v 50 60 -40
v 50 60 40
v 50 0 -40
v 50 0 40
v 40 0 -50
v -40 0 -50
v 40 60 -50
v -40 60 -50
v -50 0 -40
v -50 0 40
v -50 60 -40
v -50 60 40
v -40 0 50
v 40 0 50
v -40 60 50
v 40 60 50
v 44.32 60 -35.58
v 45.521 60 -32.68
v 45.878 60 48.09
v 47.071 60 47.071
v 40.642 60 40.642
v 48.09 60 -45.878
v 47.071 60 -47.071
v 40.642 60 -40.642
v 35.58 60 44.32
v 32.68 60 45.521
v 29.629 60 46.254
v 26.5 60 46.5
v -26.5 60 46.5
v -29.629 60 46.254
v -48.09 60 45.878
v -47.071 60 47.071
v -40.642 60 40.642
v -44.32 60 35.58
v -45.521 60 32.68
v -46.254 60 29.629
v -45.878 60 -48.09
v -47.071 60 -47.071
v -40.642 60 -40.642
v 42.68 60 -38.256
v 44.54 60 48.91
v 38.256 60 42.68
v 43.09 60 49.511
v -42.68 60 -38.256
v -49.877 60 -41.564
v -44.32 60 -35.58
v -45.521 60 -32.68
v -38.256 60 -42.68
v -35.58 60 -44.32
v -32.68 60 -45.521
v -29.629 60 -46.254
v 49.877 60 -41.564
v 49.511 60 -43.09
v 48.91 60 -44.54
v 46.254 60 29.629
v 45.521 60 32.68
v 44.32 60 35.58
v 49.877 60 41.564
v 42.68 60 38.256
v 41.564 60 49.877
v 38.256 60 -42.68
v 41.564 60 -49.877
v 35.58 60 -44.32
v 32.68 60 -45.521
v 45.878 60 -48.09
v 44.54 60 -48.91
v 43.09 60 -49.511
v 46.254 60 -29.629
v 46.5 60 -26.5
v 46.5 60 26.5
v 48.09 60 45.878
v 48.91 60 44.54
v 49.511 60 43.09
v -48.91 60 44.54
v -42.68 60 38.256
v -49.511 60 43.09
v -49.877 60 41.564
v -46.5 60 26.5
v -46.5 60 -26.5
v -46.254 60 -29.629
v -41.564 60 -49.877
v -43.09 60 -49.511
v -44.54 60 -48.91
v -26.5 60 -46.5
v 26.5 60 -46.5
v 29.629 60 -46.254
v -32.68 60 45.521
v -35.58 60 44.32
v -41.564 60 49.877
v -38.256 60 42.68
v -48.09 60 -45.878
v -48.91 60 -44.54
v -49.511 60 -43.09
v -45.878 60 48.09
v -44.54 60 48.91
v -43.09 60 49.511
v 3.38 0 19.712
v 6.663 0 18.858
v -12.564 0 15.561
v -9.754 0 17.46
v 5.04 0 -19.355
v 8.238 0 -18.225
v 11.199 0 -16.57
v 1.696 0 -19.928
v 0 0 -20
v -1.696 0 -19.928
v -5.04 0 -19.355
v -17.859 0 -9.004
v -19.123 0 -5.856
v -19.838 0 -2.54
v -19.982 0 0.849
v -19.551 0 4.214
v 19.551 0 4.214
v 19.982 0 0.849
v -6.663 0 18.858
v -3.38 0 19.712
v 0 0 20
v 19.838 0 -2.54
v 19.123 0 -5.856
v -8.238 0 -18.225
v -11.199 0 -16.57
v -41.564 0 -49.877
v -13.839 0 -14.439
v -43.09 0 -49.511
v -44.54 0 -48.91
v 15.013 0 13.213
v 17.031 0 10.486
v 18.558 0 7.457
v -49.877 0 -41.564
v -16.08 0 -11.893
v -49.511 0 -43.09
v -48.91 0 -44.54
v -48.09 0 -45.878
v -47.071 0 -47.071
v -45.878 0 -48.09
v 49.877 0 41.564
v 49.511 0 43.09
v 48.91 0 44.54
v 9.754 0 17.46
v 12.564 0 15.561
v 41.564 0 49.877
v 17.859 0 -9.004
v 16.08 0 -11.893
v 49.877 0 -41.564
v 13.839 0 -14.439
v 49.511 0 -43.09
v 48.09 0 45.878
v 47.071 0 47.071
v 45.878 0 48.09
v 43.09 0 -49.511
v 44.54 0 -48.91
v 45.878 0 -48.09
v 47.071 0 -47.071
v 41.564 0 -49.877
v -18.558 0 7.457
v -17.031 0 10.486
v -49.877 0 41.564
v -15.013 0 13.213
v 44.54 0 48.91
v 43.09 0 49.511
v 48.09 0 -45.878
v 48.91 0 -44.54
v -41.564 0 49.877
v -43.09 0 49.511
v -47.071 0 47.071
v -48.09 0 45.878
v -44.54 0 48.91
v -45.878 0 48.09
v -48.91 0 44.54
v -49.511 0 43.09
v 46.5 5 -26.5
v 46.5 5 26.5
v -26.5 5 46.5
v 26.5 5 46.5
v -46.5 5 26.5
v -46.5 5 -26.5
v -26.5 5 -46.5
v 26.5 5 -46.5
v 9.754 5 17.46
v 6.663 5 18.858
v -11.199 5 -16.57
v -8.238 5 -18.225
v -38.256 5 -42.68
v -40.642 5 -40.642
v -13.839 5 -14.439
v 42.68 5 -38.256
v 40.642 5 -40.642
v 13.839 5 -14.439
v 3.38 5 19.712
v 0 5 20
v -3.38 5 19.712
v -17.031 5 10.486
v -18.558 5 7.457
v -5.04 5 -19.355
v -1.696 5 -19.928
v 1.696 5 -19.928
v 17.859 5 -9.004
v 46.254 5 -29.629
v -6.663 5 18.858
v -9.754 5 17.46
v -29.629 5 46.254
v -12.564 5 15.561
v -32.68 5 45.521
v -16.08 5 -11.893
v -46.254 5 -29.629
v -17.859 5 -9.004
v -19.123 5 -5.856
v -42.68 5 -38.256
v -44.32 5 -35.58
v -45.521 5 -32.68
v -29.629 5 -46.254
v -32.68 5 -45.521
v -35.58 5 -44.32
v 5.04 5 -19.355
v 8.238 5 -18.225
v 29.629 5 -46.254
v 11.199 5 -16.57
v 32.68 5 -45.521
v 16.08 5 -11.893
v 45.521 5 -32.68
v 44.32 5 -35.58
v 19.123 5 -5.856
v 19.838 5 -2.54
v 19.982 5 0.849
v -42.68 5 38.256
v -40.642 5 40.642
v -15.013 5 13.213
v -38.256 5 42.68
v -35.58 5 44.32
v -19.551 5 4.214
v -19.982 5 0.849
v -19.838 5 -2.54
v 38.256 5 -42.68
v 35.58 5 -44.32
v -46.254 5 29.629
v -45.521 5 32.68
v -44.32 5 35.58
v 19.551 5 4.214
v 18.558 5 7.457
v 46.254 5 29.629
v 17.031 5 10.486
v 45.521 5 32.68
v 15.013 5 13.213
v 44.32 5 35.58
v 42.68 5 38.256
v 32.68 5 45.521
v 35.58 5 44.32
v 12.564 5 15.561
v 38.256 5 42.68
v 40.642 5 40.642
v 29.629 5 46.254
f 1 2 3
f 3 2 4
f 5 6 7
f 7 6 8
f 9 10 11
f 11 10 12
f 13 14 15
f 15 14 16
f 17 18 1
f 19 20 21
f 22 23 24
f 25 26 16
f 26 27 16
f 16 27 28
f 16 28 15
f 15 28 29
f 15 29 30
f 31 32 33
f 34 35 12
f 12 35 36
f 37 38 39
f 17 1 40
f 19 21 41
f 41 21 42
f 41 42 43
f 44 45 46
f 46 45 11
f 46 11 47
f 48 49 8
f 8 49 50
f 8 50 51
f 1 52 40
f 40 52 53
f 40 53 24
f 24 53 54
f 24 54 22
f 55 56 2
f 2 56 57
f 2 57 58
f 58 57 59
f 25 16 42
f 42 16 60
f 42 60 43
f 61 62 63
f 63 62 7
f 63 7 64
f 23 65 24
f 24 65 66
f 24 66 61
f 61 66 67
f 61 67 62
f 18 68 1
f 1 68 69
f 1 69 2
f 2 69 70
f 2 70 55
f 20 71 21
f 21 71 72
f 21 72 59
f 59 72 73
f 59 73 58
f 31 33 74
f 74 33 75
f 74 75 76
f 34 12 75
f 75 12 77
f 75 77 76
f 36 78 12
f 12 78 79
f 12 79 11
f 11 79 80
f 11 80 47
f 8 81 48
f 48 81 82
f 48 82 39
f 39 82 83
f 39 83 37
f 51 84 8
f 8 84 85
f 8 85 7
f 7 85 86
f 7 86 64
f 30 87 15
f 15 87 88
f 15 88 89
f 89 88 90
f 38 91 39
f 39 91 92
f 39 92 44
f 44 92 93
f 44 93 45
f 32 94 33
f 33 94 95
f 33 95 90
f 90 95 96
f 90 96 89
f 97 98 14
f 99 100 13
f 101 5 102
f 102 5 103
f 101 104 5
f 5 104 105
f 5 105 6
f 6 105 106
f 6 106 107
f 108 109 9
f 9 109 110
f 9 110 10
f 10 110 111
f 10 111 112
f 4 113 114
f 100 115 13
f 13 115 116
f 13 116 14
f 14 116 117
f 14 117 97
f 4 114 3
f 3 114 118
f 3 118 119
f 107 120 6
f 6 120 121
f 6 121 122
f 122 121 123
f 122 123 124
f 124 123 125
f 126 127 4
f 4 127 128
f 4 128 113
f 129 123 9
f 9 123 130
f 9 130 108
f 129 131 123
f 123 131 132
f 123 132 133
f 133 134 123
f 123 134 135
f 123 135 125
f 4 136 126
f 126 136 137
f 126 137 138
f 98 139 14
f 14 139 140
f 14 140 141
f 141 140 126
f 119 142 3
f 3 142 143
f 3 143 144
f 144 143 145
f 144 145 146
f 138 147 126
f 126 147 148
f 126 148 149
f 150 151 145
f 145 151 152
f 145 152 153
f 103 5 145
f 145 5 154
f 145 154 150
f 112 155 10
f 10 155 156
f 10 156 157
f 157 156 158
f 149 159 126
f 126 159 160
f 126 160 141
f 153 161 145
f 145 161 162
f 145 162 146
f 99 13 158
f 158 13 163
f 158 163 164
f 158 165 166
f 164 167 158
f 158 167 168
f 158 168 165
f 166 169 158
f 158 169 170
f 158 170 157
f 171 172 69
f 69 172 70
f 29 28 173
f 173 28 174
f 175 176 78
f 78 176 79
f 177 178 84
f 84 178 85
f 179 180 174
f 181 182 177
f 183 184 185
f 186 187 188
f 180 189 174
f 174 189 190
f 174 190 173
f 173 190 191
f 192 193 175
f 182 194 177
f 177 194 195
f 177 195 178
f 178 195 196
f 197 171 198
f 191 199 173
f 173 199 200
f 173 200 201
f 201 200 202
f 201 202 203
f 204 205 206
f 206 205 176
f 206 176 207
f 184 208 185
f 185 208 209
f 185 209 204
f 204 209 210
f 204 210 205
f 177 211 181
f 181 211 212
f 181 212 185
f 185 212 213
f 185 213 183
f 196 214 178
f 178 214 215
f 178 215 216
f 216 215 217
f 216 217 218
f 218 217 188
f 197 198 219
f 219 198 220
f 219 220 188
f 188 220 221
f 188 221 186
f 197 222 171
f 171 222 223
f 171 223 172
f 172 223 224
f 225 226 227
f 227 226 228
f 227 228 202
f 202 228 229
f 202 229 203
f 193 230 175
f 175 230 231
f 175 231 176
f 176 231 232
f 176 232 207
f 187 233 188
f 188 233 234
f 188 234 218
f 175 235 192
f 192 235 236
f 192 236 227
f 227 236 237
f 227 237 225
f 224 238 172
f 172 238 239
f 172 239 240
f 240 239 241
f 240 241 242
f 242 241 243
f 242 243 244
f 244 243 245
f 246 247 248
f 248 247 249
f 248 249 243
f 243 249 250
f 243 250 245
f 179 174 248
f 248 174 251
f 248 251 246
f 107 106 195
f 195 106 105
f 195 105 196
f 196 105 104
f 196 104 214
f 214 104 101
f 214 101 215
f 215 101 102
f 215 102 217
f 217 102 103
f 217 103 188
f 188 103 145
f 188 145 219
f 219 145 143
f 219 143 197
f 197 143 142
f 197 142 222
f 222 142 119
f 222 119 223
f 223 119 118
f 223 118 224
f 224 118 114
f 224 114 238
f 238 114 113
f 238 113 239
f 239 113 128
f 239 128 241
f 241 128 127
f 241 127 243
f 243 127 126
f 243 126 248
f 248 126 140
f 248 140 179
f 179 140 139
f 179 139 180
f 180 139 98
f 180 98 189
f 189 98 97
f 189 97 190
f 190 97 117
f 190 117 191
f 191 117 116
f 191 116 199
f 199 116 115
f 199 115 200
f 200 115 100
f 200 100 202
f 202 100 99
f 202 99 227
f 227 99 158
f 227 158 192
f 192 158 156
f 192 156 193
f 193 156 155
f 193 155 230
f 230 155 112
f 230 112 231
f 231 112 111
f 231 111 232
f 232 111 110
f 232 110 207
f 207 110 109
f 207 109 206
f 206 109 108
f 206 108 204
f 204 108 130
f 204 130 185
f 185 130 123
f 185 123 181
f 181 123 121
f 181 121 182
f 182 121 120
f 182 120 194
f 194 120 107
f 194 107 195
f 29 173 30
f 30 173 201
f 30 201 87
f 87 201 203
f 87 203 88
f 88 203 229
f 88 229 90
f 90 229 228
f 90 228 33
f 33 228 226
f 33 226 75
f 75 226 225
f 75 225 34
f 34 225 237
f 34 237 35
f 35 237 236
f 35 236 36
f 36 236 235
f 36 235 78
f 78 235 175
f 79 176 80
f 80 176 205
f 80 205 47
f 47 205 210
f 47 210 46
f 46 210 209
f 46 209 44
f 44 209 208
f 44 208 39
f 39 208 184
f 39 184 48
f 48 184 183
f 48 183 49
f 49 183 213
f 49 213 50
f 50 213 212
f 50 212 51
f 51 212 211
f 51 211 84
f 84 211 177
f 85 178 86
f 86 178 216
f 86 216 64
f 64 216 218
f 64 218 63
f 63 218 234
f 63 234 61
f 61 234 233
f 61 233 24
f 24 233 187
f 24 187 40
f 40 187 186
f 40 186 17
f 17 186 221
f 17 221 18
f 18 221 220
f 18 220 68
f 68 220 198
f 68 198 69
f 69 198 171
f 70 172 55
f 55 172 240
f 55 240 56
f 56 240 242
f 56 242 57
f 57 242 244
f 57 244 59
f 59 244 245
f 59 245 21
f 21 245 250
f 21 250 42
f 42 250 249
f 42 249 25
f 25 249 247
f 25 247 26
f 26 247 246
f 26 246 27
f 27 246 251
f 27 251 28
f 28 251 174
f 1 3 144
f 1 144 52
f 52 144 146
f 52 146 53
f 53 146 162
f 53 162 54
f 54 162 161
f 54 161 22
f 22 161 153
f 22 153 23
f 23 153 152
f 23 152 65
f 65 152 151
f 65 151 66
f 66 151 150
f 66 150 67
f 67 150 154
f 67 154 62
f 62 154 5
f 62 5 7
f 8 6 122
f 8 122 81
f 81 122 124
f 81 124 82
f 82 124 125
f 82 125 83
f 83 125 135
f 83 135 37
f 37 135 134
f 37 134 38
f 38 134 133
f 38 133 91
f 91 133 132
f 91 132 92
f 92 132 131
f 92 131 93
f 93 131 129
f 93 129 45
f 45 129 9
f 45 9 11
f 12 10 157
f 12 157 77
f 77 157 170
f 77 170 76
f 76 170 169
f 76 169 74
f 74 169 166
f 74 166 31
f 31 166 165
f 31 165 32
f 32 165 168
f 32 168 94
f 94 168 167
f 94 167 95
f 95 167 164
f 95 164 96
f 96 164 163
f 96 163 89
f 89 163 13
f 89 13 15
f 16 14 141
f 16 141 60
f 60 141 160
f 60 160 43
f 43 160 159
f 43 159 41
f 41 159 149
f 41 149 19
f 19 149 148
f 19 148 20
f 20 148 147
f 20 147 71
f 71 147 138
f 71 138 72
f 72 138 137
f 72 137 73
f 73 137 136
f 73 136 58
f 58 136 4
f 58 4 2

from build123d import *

# Parameters (mm, degrees)
SKETCH1_W           = 100
SKETCH1_H           = 100
BOSS_EXTRUDE1_DEPTH = 60
SKETCH2_W           = 93
SKETCH2_H           = 93
CUT_EXTRUDE1_DEPTH  = 55
SKETCH3_R           = 20
CUT_EXTRUDE2_DEPTH  = 66
FILLET1_R           = 20
FILLET2_R           = 10


with BuildPart() as part:
    # Sketch1 → Boss-Extrude1 (new body)
    with BuildSketch(Plane(origin=(0, 0, 0), x_dir=(1, 0, 0), z_dir=(0, 1, 0))):
        Rectangle(SKETCH1_W, SKETCH1_H)
    extrude(amount=BOSS_EXTRUDE1_DEPTH)

    # Sketch2 → Cut-Extrude1 (cut)
    with BuildSketch(Plane(origin=(0, 60, 0), x_dir=(1, 0, 0), z_dir=(0, 1, 0))):
        Rectangle(SKETCH2_W, SKETCH2_H)
    extrude(amount=-CUT_EXTRUDE1_DEPTH, mode=Mode.SUBTRACT)

    # Sketch3 → Cut-Extrude2 (cut)
    with BuildSketch(Plane(origin=(0, 5, 0), x_dir=(1, 0, 0), z_dir=(0, 1, 0))):
        with Locations(Location((0, 0, 0), (0, 0, 270))):
            Circle(SKETCH3_R)
    extrude(amount=-CUT_EXTRUDE2_DEPTH, mode=Mode.SUBTRACT)

    # Fillet1
    fillet1_edges = [part.edges().sort_by_distance(p)[0] for p in [
        (46.5, 32.5, -46.5),
        (46.5, 32.5, 46.5),
        (-46.5, 32.5, 46.5),
        (-46.5, 32.5, -46.5),
    ]]
    fillet(fillet1_edges, radius=FILLET1_R)

    # Fillet2
    fillet2_edges = [part.edges().sort_by_distance(p)[0] for p in [
        (50, 30, 50),
        (-50, 30, 50),
        (-50, 30, -50),
        (50, 30, -50),
    ]]
    fillet(fillet2_edges, radius=FILLET2_R)


solid = part.part
